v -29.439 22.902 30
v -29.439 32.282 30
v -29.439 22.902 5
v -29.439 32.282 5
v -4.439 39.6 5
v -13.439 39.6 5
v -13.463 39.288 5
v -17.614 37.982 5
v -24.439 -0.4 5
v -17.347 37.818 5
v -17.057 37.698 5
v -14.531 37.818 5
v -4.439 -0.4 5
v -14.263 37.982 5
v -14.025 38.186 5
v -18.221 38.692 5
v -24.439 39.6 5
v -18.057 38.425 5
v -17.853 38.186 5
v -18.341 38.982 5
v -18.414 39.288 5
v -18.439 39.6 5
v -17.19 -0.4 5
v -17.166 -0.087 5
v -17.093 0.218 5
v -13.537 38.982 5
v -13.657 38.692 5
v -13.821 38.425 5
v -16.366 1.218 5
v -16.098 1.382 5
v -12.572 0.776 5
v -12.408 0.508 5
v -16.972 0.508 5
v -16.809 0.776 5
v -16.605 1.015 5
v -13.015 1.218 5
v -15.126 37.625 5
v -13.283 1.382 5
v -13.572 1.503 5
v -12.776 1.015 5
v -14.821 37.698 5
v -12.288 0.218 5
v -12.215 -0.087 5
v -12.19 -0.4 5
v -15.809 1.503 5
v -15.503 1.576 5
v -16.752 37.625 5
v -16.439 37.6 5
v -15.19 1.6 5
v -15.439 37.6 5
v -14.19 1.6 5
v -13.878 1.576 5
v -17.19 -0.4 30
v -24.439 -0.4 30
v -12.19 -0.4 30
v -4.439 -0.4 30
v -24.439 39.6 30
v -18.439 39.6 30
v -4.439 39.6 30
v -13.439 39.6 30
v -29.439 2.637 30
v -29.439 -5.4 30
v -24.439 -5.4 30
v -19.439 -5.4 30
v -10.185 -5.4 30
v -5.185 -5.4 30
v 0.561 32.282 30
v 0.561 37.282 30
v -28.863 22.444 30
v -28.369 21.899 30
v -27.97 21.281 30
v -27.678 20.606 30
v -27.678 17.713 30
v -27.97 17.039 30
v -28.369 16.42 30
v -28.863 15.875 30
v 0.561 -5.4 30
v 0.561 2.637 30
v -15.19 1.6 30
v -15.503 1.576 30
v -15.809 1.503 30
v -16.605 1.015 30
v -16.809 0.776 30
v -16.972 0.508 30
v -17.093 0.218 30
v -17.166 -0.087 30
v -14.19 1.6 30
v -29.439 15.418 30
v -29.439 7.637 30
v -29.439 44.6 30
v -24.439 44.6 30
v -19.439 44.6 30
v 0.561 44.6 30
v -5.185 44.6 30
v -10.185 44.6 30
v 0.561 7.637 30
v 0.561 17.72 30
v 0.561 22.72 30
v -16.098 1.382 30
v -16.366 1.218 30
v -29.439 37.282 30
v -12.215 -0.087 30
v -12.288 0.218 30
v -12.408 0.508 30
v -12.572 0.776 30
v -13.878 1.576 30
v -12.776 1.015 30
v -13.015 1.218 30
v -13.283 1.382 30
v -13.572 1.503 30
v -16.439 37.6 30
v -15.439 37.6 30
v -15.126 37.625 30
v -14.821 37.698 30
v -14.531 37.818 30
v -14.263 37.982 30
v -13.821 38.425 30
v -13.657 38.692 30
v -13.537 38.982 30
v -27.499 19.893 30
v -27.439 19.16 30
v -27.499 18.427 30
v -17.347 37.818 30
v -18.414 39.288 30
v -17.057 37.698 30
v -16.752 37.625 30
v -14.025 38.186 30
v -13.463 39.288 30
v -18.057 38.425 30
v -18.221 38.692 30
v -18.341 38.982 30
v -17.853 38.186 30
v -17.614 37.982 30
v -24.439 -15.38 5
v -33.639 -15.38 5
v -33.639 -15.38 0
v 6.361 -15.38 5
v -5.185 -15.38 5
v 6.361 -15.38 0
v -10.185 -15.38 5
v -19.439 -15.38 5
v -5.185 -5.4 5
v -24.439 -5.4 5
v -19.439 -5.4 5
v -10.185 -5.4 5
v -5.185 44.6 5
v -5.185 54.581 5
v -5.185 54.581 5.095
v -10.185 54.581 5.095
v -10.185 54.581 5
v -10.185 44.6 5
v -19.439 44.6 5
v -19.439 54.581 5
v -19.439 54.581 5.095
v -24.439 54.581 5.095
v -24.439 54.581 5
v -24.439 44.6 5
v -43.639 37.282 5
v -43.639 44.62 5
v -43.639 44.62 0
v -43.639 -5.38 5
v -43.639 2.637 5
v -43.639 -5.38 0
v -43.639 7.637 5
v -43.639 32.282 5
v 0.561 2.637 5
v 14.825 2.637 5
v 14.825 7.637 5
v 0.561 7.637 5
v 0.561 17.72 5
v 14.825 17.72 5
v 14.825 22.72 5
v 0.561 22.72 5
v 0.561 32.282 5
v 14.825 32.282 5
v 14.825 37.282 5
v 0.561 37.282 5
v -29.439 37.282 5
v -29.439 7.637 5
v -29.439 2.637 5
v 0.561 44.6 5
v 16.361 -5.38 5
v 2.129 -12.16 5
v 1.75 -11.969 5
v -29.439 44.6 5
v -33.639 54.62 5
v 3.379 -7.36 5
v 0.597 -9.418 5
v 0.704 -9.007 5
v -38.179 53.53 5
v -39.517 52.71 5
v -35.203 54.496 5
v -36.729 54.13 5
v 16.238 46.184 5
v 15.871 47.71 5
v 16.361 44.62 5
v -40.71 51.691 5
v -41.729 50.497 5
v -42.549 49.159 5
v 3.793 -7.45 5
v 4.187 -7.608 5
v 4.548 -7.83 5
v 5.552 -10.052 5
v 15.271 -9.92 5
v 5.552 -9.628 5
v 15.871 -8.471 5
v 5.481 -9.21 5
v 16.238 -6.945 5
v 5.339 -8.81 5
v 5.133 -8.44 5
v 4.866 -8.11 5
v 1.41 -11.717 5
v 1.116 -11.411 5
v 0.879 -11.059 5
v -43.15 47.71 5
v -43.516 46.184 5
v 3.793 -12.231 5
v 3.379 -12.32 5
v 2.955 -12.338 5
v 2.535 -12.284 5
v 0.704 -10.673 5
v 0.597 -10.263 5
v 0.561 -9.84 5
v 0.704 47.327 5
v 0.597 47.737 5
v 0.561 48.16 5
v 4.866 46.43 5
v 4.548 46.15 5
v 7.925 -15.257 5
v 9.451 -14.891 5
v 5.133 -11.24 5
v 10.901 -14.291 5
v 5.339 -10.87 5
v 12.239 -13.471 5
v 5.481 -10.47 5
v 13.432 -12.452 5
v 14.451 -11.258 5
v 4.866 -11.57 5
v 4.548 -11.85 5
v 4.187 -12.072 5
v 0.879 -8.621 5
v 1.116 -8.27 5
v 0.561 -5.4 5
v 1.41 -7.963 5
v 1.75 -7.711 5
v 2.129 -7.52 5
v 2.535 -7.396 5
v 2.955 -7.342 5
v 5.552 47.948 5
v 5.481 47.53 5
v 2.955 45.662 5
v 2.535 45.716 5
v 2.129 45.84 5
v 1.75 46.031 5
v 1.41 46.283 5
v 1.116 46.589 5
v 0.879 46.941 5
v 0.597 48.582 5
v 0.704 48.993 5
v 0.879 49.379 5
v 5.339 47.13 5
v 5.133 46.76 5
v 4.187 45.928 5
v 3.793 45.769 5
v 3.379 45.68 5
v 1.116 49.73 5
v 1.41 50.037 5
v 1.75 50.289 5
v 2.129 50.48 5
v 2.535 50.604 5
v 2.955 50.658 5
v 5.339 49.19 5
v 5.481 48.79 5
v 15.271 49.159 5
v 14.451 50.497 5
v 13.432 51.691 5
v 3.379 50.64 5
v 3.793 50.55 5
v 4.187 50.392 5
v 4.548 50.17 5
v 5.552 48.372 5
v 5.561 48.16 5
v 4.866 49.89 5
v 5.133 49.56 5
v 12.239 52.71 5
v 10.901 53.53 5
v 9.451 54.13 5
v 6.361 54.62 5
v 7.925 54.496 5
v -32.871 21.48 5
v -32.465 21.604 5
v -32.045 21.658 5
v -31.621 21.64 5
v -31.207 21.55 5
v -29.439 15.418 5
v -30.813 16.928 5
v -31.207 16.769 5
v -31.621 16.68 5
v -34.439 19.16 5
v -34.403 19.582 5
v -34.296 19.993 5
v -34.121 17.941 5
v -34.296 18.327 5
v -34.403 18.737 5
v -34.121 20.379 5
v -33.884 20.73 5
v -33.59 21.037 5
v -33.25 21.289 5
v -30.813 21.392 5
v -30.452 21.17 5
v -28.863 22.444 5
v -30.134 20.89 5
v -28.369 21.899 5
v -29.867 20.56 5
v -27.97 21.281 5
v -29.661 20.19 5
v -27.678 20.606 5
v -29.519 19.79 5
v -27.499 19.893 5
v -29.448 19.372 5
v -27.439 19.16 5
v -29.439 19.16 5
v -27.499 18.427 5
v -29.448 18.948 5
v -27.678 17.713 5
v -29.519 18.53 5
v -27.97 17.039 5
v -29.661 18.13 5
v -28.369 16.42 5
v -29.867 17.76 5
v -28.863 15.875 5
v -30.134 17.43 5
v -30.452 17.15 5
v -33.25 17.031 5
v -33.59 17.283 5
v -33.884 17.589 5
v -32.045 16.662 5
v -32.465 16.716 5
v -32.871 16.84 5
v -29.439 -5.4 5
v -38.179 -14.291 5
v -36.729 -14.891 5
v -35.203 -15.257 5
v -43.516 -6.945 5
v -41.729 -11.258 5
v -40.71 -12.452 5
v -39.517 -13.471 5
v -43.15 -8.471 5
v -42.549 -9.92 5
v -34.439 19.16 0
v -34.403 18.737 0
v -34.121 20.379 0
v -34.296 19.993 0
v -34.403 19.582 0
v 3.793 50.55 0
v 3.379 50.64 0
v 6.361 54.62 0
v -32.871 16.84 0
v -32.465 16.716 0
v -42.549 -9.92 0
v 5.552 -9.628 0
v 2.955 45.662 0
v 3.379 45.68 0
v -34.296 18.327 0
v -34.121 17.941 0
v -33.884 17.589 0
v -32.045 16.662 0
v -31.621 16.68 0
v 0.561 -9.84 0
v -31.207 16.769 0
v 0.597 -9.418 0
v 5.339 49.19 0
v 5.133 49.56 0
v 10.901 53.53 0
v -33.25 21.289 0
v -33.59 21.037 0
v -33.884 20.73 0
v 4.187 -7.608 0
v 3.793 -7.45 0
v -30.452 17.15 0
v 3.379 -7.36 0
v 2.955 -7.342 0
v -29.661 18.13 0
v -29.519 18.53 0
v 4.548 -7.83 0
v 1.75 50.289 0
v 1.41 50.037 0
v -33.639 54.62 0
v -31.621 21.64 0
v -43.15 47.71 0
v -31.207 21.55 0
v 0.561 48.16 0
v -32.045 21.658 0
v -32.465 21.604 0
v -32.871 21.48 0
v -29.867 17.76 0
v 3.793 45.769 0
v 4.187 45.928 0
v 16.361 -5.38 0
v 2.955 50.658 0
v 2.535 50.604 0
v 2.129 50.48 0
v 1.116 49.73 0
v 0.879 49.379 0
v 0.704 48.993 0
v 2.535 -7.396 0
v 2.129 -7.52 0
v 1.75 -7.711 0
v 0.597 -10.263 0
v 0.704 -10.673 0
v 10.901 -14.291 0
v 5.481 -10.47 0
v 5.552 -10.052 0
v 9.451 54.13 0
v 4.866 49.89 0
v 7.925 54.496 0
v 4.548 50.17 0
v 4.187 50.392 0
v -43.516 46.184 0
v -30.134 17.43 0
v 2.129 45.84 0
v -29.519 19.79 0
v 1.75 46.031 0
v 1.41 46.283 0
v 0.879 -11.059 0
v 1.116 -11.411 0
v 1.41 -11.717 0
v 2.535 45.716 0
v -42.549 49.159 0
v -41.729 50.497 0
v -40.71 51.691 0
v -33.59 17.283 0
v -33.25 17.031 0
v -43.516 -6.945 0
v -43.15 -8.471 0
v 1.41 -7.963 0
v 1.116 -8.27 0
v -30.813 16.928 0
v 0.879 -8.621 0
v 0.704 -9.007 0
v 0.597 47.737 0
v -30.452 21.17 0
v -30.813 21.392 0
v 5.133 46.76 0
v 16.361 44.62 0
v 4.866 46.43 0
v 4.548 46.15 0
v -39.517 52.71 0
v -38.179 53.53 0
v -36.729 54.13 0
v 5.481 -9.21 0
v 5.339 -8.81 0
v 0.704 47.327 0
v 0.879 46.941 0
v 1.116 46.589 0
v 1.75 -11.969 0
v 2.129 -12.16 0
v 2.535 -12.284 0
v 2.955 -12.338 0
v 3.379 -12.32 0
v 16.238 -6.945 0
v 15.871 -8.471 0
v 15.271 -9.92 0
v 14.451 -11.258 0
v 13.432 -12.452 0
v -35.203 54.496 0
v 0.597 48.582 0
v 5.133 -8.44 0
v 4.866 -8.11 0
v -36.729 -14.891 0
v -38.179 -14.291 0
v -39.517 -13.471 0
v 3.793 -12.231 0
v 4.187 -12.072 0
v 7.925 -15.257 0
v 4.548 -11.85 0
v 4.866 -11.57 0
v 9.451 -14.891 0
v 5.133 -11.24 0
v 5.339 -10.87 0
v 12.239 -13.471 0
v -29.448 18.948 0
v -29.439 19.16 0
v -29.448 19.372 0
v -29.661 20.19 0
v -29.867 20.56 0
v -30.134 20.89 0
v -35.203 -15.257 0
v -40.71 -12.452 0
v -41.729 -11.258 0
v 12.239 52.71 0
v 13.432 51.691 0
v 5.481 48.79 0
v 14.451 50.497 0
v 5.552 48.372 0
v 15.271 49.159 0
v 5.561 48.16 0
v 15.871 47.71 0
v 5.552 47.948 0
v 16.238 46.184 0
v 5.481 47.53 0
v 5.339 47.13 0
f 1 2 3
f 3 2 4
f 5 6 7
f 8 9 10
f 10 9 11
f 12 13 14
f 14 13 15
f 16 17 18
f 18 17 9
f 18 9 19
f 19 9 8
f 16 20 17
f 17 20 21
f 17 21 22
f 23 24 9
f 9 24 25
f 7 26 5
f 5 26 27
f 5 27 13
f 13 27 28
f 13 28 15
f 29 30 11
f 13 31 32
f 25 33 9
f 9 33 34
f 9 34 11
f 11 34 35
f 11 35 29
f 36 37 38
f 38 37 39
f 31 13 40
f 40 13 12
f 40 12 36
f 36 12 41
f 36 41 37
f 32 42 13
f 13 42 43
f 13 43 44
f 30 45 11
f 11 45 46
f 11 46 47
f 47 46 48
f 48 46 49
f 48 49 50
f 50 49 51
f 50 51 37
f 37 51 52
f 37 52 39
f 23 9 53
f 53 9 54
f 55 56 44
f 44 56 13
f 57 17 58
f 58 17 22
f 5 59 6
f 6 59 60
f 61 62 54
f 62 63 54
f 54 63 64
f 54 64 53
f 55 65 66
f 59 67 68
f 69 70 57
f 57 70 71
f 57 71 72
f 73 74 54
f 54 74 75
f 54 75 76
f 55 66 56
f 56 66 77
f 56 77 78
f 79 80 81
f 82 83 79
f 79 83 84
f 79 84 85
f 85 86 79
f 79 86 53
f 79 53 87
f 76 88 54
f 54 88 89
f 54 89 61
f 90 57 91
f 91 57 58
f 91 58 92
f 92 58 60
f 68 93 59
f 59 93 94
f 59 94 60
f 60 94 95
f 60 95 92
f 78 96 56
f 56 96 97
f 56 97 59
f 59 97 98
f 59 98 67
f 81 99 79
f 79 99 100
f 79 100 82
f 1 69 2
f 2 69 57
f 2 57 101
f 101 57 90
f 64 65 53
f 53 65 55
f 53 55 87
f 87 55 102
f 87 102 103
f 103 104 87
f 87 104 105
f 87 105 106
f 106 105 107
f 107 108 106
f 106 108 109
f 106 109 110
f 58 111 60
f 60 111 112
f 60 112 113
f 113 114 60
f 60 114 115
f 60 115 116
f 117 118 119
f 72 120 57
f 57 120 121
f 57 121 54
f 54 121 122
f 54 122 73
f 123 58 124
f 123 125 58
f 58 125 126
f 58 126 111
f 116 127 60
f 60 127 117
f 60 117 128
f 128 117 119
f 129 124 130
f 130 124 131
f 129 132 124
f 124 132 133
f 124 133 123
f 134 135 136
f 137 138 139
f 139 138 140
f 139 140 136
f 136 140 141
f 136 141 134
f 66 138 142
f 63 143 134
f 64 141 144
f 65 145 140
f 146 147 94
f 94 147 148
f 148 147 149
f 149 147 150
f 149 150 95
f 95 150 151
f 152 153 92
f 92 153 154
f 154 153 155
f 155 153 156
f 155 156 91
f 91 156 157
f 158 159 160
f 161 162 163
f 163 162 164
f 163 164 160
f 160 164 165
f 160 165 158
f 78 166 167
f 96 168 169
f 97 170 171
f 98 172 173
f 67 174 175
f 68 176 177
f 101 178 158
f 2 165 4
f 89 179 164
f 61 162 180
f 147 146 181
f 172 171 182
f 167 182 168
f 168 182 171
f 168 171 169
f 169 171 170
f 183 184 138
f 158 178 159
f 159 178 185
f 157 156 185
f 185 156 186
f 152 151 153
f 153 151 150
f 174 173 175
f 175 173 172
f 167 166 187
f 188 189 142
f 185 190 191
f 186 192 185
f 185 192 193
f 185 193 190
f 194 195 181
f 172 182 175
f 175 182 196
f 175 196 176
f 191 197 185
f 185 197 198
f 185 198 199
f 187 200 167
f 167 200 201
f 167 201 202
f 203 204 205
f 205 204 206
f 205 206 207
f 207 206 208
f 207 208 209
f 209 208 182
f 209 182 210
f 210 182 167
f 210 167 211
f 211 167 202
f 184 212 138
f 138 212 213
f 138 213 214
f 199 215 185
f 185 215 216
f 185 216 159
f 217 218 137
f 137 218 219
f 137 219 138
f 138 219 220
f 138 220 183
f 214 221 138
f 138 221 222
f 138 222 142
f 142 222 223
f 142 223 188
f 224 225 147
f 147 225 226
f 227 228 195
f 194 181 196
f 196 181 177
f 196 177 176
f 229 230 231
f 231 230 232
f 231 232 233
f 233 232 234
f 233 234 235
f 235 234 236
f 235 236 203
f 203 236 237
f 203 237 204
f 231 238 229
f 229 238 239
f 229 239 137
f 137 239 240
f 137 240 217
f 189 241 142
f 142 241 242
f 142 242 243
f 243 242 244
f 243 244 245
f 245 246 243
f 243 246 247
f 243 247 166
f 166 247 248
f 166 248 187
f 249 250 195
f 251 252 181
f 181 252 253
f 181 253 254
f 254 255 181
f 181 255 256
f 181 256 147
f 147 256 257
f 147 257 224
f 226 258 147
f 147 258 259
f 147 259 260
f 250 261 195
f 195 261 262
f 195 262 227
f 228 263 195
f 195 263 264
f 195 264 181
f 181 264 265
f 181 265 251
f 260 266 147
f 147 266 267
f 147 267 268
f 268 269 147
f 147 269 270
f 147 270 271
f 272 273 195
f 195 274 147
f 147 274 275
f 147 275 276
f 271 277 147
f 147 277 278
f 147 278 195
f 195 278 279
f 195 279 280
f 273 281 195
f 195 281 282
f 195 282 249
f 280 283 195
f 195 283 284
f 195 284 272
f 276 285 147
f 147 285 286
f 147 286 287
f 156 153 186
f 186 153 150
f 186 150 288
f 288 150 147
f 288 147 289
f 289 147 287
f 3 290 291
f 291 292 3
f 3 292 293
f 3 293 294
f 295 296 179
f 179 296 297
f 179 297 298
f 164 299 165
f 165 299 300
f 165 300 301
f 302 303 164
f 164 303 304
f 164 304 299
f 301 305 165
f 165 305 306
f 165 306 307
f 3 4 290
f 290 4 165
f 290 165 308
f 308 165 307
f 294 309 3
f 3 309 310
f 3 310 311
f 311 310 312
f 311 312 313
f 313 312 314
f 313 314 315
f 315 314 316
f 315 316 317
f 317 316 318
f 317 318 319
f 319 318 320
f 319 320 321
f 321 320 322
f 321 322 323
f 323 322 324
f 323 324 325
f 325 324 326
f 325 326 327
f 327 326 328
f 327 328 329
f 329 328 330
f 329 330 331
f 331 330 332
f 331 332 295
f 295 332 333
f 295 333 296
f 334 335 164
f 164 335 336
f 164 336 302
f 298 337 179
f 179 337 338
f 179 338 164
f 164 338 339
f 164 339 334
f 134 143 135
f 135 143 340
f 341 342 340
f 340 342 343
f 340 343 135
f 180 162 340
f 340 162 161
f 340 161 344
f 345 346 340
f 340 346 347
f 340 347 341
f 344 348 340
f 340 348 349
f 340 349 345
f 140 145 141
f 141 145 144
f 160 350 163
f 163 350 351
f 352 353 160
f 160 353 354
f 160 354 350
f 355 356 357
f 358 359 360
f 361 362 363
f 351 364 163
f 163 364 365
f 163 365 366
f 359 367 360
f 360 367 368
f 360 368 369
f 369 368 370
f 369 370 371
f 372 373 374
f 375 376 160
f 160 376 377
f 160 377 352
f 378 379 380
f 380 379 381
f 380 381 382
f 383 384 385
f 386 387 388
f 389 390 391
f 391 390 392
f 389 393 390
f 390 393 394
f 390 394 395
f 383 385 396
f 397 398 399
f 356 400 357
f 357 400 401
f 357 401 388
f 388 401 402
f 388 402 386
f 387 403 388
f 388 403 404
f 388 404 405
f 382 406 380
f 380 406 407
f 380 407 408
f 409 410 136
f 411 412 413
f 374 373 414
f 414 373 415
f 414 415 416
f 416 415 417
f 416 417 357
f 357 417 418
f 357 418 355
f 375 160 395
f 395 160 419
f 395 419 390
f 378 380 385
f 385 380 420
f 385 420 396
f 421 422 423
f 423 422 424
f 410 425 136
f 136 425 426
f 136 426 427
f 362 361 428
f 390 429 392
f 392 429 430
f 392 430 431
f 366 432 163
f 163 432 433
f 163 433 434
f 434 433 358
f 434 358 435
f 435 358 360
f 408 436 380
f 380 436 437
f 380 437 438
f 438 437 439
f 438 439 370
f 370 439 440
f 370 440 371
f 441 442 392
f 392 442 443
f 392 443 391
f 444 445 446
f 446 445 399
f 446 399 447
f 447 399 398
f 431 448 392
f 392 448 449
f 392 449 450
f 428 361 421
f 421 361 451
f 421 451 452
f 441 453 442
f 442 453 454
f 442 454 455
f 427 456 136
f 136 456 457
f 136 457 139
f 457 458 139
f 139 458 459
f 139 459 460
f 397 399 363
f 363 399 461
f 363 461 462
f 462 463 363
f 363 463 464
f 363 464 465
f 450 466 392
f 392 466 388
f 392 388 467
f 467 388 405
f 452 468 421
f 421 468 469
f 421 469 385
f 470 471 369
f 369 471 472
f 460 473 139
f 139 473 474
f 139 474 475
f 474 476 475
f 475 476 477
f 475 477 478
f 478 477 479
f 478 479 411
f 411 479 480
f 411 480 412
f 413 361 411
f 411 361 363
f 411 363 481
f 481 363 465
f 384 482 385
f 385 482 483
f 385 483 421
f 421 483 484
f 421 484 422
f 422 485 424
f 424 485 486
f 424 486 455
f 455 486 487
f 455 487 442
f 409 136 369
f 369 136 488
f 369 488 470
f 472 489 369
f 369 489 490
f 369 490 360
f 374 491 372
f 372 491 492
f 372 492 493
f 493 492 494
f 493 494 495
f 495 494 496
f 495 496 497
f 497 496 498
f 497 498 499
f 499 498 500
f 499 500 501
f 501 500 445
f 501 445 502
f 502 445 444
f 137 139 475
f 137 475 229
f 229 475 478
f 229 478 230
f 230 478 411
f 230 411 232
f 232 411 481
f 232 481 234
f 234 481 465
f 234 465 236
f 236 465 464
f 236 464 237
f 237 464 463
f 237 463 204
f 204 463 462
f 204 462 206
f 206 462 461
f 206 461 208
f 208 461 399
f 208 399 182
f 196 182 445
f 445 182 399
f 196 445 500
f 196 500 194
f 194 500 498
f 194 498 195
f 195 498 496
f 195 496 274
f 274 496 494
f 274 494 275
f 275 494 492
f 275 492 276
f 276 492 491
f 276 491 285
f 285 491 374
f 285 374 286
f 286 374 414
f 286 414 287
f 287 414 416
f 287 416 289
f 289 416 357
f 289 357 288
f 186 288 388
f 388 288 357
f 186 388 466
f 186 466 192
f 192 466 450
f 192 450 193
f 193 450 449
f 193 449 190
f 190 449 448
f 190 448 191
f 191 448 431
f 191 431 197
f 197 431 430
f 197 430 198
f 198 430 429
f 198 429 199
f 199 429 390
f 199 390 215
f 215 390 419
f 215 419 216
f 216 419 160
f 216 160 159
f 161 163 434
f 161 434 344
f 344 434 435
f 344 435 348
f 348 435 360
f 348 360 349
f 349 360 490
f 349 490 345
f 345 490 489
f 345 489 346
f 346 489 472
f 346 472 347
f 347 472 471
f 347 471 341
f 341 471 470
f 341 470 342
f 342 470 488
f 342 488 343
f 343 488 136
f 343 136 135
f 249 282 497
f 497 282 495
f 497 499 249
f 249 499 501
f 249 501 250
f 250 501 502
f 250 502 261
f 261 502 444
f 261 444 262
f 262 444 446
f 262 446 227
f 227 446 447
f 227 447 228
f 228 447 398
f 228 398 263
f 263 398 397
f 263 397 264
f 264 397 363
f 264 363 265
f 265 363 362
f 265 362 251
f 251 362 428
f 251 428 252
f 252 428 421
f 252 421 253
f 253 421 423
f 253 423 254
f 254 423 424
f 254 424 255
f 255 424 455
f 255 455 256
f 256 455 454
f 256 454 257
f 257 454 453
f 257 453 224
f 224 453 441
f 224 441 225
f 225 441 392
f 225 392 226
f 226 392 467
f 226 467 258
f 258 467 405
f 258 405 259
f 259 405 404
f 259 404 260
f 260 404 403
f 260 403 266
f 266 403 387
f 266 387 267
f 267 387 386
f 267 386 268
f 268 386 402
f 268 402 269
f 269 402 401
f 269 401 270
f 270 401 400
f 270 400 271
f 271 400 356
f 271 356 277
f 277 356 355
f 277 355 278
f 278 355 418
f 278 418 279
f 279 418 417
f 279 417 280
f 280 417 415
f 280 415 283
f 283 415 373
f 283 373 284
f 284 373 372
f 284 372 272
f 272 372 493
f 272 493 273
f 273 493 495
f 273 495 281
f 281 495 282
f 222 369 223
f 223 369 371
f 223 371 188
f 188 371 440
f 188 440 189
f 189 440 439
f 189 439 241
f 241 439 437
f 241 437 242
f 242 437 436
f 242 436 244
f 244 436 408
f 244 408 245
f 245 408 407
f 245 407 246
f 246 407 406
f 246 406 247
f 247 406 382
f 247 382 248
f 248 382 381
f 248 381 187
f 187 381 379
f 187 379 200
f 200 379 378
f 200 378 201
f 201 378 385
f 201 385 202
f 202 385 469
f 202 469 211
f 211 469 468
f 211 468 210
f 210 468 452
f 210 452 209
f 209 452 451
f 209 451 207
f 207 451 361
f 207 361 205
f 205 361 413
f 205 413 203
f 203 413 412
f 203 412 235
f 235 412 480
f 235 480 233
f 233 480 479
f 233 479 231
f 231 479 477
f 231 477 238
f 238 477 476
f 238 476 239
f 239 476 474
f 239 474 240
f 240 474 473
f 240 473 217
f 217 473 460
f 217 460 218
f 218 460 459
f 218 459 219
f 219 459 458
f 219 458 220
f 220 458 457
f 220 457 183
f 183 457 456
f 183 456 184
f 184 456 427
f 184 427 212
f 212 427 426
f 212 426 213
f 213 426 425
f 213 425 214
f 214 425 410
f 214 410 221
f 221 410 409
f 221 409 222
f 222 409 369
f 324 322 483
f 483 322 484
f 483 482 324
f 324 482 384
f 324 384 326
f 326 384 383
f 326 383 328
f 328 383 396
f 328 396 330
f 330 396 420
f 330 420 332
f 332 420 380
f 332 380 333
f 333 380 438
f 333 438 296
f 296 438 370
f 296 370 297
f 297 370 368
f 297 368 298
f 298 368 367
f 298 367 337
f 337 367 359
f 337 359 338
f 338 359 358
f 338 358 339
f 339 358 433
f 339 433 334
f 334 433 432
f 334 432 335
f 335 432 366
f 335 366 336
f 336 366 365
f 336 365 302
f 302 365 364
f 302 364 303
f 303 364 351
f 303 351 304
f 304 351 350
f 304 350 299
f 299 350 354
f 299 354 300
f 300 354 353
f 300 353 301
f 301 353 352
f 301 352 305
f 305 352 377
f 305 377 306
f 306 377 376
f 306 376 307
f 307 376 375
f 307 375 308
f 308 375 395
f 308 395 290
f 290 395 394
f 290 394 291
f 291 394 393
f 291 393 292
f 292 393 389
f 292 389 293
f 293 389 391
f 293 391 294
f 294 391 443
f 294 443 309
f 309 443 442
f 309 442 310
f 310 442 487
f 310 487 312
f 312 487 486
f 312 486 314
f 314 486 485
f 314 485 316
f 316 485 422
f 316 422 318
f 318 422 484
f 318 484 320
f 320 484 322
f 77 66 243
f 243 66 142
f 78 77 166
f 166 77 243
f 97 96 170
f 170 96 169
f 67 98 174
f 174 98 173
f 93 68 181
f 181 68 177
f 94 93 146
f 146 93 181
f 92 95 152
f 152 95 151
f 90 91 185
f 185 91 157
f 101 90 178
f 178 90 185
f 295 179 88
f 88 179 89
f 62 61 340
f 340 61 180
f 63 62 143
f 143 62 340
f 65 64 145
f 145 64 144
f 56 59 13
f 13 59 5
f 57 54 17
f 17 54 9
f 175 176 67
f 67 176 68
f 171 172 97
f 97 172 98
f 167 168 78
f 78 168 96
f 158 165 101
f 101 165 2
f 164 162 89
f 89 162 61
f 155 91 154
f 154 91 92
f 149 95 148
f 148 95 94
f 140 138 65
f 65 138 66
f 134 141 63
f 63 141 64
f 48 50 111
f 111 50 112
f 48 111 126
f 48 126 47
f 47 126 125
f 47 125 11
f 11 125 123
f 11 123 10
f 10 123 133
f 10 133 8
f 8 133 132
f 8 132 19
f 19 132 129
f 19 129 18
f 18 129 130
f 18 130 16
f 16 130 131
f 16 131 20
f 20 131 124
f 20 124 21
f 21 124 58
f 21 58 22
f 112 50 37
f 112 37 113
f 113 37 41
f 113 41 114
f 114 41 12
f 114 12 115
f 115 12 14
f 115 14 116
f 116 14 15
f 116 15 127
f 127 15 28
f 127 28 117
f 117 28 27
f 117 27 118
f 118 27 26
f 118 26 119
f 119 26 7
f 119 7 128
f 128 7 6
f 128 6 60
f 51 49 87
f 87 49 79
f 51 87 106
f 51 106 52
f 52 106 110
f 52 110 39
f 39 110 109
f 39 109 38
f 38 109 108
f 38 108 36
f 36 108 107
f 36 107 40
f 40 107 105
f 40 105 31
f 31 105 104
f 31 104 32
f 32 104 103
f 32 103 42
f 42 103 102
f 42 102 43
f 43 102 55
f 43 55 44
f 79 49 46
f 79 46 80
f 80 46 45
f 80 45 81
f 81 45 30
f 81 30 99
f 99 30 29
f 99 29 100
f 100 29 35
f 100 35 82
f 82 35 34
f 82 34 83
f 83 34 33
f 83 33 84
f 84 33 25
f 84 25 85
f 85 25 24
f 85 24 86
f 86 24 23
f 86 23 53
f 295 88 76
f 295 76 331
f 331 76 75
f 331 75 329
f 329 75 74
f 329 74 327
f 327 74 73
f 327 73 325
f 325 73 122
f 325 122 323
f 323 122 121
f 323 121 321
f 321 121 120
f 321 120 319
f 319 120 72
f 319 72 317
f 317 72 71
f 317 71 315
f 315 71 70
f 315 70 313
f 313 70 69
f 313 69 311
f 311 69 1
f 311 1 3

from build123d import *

# Parameters (mm, degrees)
SKETCH1_R                = 2.5
BOSS_EXTRUDE1_DEPTH      = 5
SKETCH3_W                = 20
SKETCH3_H                = 40
BOSS_EXTRUDE5_DEPTH      = 25
CUT_EXTRUDE2_DEPTH       = 75.20598847
CUT_EXTRUDE2_DEPTH_BACK  = 75.20598847
CUT_EXTRUDE_THIN13_DEPTH = 75.484252037
SKETCH8_W                = 5
SKETCH8_H                = 25
BOSS_EXTRUDE6_DEPTH      = 2
FILLET3_R                = 2
SKETCH9_W                = 5
SKETCH9_H                = 25
BOSS_EXTRUDE7_DEPTH      = 2
FILLET4_R                = 2
SKETCH11_R               = 4.5
CUT_EXTRUDE4_DEPTH       = 25


with BuildPart() as part:
    # Sketch1 → Boss-Extrude1 (new body)
    with BuildSketch(Plane.XY):
        with BuildLine():
            Line((-33.639154819, 54.619565217), (6.360845181, 54.619565217))
            ThreePointArc((6.360845181, 54.619565217), (13.431912992, 51.690633029), (16.360845181, 44.619565217))
            Line((16.360845181, 44.619565217), (16.360845181, -5.380434783))
            ThreePointArc((16.360845181, -5.380434783), (13.431912992, -12.451502594), (6.360845181, -15.380434783))
            Line((6.360845181, -15.380434783), (-33.639154819, -15.380434783))
            ThreePointArc((-33.639154819, -15.380434783), (-40.710222631, -12.451502594), (-43.639154819, -5.380434783))
            Line((-43.639154819, -5.380434783), (-43.639154819, 44.619565217))
            ThreePointArc((-43.639154819, 44.619565217), (-40.710222631, 51.690633029), (-33.639154819, 54.619565217))
        make_face()
        with Locations((3.061250856, 48.159869042)):
            Circle(SKETCH1_R, mode=Mode.SUBTRACT)
        with Locations(Location((3.061250856, -9.840130958, 0), (0, 0, 180))):
            Circle(SKETCH1_R, mode=Mode.SUBTRACT)
        with Locations((-31.938749144, 19.159869042)):
            Circle(SKETCH1_R, mode=Mode.SUBTRACT)
    extrude(amount=BOSS_EXTRUDE1_DEPTH)

    # Sketch3 → Boss-Extrude5 (add)
    with BuildSketch(Plane.XY.offset(5)):
        Polygon((-24.438749144, 44.600432852), (-29.438749144, 44.600432852), (-29.438749144, 37.28199121), (-43.639154819, 37.28199121), (-43.639154819, 32.28199121), (-29.438749144, 32.28199121), (-29.438749144, 7.637328911), (-43.639154819, 7.637328911), (-43.639154819, 2.637328911), (-29.438749144, 2.637328911), (-29.438749144, -5.399567148), (-24.438749144, -5.399567148), (-24.438749144, -15.380434783), (-19.438749144, -15.380434783), (-19.438749144, -5.399567148), (-10.184597354, -5.399567148), (-10.184597354, -15.380434783), (-5.184597354, -15.380434783), (-5.184597354, -5.399567148), (0.561250856, -5.399567148), (0.561250856, 2.637328911), (14.825245568, 2.637328911), (14.825245568, 7.637328911), (0.561250856, 7.637328911), (0.561250856, 17.719700958), (14.825245568, 17.719700958), (14.825245568, 22.719700958), (0.561250856, 22.719700958), (0.561250856, 32.28199121), (14.825245568, 32.28199121), (14.825245568, 37.28199121), (0.561250856, 37.28199121), (0.561250856, 44.600432852), (-5.184597354, 44.600432852), (-5.184597354, 54.581300487), (-10.184597354, 54.581300487), (-10.184597354, 44.600432852), (-19.438749144, 44.600432852), (-19.438749144, 54.581300487), (-24.438749144, 54.581300487), align=None)
        with Locations((-14.438749144, 19.600432852)):
            Rectangle(SKETCH3_W, SKETCH3_H, mode=Mode.SUBTRACT)
    extrude(amount=BOSS_EXTRUDE5_DEPTH)

    # Sketch5 → Cut-Extrude2 (cut, two sides: drawn at the far end of the back side and taken through both)
    with BuildSketch(Plane.XZ.offset(-2.637328911).offset(-CUT_EXTRUDE2_DEPTH_BACK)):
        Polygon((-43.639154819, 30), (-43.639154819, 5), (-29.438749144, 30), align=None)
        Polygon((14.825245568, 30), (0.561250856, 30), (14.825245568, 5), align=None)
    extrude(amount=CUT_EXTRUDE2_DEPTH + CUT_EXTRUDE2_DEPTH_BACK, mode=Mode.SUBTRACT)

    # Sketch7 → Cut-Extrude-Thin13 (cut, through all)
    with BuildSketch(Plane.ZY.offset(24.438749144)):
        Polygon((30, 44.600432852), (5, 54.619565217), (8.72002984, 63.901880553), (33.72002984, 53.882748188), align=None)
        Polygon((5, -15.380434783), (30, -5.399567148), (33.707778838, -14.686782882), (8.707778838, -24.667650517), align=None)
    extrude(amount=-CUT_EXTRUDE_THIN13_DEPTH, mode=Mode.SUBTRACT)

    # Sketch8 → Boss-Extrude6 (add)
    with BuildSketch(Plane.XZ.offset(-39.600432852)):
        with Locations((-15.938749144, 17.5)):
            Rectangle(SKETCH8_W, SKETCH8_H)
    extrude(amount=BOSS_EXTRUDE6_DEPTH)

    # Fillet3
    fillet3_edges = [part.edges().sort_by_distance(p)[0] for p in [
        (-18.438749144, 37.600432852, 17.5),
        (-13.438749144, 37.600432852, 17.5),
    ]]
    fillet(fillet3_edges, radius=FILLET3_R - 0.0001)  # a hair under: the kernel refuses the full size

    # Sketch9 → Boss-Extrude7 (add)
    with BuildSketch(Plane(origin=(0, -0.399567148, 0), x_dir=(1, 0, 0), z_dir=(0, 1, 0))):
        with Locations((-14.690486301, -17.5)):
            Rectangle(SKETCH9_W, SKETCH9_H)
    extrude(amount=BOSS_EXTRUDE7_DEPTH)

    # Fillet4
    fillet4_edges = [part.edges().sort_by_distance(p)[0] for p in [
        (-12.190486301, 1.600432852, 17.5),
        (-17.190486301, 1.600432852, 17.5),
    ]]
    fillet(fillet4_edges, radius=FILLET4_R - 0.0001)  # a hair under: the kernel refuses the full size

    # Sketch11 → Cut-Extrude4 (cut)
    with BuildSketch(Plane.XY.offset(30)):
        with Locations((-31.938749144, 19.159869042)):
            Circle(SKETCH11_R)
    extrude(amount=-CUT_EXTRUDE4_DEPTH, mode=Mode.SUBTRACT)


solid = part.part
